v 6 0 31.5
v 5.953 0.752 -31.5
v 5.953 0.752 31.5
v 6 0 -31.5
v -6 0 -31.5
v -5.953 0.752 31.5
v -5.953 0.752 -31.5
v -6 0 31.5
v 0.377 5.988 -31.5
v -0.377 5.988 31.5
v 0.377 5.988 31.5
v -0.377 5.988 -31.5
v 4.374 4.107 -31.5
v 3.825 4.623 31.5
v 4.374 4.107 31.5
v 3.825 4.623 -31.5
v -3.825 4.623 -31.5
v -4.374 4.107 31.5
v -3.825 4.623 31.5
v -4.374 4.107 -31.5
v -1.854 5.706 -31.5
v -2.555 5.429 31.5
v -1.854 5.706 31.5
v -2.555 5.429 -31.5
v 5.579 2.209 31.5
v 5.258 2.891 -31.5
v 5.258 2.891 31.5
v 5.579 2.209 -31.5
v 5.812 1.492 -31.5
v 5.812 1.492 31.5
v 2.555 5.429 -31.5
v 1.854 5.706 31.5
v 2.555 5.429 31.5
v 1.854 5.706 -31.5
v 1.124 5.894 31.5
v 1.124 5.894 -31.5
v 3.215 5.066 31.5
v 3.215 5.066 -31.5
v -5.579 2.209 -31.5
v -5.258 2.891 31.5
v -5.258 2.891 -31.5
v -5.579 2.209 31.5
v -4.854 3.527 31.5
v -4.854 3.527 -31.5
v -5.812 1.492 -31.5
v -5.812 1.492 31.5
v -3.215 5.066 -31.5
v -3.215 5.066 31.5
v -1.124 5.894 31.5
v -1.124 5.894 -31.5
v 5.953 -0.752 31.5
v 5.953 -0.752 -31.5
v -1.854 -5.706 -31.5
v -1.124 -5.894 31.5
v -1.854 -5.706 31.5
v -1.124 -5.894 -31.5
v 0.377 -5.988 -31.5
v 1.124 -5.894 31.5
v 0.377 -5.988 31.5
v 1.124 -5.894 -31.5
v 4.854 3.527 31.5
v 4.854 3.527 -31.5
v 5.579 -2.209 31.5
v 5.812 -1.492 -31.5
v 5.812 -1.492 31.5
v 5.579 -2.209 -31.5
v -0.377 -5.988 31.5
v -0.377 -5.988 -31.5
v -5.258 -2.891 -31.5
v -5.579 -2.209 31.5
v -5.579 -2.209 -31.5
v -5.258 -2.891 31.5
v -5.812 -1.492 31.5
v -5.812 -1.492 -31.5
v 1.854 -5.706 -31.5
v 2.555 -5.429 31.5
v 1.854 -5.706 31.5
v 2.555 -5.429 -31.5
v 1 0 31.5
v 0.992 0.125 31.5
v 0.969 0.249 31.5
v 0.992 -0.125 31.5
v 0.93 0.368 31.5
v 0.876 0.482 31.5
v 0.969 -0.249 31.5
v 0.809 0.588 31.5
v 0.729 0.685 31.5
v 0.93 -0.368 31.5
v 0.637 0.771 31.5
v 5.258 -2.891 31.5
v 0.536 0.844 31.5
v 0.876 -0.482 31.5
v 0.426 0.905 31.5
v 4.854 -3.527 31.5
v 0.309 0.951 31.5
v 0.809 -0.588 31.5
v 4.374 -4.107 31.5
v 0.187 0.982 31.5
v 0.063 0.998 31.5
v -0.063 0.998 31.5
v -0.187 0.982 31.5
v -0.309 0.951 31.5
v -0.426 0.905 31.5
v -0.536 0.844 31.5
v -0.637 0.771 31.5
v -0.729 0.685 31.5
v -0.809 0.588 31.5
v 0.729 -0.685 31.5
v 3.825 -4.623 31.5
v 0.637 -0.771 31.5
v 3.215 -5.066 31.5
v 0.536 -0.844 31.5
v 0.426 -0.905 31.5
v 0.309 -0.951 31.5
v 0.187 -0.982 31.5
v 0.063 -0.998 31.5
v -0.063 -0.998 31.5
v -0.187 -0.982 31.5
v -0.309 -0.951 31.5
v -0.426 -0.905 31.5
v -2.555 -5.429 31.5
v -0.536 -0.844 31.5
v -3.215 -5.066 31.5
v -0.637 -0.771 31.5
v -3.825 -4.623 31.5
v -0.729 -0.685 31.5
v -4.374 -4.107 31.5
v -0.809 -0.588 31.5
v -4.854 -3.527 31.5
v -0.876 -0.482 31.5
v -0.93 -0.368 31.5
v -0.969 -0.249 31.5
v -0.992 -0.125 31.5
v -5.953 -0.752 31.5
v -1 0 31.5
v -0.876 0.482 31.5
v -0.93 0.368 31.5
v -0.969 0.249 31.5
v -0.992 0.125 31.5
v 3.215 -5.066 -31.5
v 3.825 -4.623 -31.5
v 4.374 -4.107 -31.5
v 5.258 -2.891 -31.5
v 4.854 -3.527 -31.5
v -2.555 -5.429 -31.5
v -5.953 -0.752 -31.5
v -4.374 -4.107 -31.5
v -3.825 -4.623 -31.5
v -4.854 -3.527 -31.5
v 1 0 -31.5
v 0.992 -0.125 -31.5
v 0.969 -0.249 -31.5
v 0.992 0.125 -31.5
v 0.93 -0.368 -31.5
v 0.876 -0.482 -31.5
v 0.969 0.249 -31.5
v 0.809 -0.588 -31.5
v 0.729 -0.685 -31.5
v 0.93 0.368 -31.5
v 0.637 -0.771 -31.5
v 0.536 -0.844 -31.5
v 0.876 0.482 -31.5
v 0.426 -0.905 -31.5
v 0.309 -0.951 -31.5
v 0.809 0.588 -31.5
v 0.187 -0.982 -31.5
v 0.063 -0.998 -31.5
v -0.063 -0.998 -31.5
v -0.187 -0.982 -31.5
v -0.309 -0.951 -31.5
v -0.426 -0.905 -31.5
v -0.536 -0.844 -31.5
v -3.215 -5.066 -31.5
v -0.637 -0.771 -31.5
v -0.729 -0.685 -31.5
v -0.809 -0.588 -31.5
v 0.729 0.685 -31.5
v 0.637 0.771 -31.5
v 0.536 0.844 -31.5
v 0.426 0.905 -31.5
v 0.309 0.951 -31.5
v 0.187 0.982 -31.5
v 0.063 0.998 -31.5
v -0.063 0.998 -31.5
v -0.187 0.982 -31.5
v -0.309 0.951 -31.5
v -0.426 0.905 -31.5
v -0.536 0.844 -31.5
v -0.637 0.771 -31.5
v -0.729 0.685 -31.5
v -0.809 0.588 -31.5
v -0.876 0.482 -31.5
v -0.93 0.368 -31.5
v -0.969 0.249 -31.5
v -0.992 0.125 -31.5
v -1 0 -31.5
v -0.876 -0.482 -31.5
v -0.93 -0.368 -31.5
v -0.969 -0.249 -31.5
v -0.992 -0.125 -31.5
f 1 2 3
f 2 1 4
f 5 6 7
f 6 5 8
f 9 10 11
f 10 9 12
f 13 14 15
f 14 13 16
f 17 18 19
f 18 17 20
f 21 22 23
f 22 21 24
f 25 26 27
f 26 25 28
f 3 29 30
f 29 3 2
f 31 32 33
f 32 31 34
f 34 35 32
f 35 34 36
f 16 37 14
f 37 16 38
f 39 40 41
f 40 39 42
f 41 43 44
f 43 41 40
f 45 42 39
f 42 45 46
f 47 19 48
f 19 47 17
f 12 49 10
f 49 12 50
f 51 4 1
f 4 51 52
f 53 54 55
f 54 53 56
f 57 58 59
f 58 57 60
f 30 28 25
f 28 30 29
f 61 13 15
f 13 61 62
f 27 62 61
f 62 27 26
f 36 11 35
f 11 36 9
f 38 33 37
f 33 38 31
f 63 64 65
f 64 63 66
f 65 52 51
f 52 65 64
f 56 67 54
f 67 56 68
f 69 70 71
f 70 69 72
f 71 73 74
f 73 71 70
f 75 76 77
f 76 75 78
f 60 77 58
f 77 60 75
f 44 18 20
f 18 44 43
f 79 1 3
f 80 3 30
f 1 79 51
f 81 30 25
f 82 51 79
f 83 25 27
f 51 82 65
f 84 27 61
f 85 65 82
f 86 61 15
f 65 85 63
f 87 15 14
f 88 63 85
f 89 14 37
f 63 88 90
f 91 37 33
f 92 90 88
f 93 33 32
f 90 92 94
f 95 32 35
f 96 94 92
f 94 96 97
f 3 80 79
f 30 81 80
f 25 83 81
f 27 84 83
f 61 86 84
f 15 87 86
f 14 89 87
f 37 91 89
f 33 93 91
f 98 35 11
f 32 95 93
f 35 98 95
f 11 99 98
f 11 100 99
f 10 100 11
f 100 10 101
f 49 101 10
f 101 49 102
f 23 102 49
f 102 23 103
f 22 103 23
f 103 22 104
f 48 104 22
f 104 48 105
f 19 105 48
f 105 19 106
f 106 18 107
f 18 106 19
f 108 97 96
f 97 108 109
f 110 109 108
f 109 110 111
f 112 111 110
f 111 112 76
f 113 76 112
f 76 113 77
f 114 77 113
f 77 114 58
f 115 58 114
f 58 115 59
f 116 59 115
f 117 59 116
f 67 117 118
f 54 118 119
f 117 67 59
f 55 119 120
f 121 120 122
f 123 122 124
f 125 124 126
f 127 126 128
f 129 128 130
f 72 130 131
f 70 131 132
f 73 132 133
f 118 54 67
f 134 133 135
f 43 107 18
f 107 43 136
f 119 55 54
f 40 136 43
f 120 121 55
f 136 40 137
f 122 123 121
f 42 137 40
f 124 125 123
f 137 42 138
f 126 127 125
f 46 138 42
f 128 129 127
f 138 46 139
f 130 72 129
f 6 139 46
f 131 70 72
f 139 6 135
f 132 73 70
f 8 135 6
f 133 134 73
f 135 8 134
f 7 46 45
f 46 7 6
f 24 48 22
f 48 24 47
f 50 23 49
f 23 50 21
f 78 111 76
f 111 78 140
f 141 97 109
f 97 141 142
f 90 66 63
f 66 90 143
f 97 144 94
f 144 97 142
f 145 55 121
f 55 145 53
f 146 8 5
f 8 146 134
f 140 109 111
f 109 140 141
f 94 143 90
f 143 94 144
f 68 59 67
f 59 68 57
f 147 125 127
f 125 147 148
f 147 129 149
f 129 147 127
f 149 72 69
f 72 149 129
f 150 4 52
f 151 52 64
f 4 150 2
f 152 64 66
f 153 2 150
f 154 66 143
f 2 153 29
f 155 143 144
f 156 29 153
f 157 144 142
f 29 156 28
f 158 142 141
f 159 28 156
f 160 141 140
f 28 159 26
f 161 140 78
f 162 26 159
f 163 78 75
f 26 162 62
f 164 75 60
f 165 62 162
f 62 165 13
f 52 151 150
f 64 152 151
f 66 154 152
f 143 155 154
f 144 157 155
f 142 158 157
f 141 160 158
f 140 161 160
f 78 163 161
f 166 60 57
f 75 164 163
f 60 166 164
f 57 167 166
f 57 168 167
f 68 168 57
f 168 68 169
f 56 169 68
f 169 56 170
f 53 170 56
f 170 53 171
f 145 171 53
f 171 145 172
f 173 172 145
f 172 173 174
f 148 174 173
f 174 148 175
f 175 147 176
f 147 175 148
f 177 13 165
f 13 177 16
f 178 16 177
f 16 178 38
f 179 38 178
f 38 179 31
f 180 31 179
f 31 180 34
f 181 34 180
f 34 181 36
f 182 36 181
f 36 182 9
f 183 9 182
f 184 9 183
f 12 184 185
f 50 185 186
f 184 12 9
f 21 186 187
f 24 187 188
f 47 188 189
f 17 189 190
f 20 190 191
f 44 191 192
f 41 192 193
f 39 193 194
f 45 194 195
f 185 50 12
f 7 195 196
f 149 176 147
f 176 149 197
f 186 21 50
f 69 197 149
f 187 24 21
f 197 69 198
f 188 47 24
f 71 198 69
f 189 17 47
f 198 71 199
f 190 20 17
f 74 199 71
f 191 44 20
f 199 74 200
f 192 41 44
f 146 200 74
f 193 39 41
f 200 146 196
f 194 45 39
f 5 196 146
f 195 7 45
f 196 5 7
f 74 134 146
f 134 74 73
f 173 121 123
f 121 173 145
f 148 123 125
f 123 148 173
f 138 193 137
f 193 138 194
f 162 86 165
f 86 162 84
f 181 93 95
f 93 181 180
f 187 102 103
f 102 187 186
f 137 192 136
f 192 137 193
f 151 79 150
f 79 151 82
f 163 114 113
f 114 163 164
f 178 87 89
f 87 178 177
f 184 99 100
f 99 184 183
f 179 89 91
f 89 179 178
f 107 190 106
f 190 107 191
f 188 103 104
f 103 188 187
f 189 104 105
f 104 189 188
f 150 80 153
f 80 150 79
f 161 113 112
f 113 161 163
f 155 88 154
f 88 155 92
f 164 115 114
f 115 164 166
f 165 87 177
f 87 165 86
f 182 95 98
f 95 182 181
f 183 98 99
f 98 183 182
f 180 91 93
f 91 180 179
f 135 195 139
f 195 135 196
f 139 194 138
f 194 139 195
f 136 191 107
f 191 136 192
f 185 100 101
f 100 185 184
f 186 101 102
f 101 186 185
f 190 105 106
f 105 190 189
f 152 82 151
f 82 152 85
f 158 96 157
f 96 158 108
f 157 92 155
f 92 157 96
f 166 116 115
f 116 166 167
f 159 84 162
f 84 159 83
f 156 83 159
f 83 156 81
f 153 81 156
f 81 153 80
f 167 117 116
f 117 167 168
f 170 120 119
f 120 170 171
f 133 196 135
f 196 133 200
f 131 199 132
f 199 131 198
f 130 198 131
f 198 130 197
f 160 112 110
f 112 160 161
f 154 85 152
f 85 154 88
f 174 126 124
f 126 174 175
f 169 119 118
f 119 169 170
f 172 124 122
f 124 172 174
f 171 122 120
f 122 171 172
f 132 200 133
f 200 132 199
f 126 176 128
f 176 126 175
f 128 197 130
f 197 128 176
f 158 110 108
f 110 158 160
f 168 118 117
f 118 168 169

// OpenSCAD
$fn = 50;


difference() {
	union() {
		translate(v = [0, 0, -31.5000000000]) {
			cylinder(h = 63, r = 6.0000000000);
		}
	}
	union() {
		translate(v = [0, 0, -100.0000000000]) {
			cylinder(h = 200, r = 1.0000000000);
		}
	}
}
